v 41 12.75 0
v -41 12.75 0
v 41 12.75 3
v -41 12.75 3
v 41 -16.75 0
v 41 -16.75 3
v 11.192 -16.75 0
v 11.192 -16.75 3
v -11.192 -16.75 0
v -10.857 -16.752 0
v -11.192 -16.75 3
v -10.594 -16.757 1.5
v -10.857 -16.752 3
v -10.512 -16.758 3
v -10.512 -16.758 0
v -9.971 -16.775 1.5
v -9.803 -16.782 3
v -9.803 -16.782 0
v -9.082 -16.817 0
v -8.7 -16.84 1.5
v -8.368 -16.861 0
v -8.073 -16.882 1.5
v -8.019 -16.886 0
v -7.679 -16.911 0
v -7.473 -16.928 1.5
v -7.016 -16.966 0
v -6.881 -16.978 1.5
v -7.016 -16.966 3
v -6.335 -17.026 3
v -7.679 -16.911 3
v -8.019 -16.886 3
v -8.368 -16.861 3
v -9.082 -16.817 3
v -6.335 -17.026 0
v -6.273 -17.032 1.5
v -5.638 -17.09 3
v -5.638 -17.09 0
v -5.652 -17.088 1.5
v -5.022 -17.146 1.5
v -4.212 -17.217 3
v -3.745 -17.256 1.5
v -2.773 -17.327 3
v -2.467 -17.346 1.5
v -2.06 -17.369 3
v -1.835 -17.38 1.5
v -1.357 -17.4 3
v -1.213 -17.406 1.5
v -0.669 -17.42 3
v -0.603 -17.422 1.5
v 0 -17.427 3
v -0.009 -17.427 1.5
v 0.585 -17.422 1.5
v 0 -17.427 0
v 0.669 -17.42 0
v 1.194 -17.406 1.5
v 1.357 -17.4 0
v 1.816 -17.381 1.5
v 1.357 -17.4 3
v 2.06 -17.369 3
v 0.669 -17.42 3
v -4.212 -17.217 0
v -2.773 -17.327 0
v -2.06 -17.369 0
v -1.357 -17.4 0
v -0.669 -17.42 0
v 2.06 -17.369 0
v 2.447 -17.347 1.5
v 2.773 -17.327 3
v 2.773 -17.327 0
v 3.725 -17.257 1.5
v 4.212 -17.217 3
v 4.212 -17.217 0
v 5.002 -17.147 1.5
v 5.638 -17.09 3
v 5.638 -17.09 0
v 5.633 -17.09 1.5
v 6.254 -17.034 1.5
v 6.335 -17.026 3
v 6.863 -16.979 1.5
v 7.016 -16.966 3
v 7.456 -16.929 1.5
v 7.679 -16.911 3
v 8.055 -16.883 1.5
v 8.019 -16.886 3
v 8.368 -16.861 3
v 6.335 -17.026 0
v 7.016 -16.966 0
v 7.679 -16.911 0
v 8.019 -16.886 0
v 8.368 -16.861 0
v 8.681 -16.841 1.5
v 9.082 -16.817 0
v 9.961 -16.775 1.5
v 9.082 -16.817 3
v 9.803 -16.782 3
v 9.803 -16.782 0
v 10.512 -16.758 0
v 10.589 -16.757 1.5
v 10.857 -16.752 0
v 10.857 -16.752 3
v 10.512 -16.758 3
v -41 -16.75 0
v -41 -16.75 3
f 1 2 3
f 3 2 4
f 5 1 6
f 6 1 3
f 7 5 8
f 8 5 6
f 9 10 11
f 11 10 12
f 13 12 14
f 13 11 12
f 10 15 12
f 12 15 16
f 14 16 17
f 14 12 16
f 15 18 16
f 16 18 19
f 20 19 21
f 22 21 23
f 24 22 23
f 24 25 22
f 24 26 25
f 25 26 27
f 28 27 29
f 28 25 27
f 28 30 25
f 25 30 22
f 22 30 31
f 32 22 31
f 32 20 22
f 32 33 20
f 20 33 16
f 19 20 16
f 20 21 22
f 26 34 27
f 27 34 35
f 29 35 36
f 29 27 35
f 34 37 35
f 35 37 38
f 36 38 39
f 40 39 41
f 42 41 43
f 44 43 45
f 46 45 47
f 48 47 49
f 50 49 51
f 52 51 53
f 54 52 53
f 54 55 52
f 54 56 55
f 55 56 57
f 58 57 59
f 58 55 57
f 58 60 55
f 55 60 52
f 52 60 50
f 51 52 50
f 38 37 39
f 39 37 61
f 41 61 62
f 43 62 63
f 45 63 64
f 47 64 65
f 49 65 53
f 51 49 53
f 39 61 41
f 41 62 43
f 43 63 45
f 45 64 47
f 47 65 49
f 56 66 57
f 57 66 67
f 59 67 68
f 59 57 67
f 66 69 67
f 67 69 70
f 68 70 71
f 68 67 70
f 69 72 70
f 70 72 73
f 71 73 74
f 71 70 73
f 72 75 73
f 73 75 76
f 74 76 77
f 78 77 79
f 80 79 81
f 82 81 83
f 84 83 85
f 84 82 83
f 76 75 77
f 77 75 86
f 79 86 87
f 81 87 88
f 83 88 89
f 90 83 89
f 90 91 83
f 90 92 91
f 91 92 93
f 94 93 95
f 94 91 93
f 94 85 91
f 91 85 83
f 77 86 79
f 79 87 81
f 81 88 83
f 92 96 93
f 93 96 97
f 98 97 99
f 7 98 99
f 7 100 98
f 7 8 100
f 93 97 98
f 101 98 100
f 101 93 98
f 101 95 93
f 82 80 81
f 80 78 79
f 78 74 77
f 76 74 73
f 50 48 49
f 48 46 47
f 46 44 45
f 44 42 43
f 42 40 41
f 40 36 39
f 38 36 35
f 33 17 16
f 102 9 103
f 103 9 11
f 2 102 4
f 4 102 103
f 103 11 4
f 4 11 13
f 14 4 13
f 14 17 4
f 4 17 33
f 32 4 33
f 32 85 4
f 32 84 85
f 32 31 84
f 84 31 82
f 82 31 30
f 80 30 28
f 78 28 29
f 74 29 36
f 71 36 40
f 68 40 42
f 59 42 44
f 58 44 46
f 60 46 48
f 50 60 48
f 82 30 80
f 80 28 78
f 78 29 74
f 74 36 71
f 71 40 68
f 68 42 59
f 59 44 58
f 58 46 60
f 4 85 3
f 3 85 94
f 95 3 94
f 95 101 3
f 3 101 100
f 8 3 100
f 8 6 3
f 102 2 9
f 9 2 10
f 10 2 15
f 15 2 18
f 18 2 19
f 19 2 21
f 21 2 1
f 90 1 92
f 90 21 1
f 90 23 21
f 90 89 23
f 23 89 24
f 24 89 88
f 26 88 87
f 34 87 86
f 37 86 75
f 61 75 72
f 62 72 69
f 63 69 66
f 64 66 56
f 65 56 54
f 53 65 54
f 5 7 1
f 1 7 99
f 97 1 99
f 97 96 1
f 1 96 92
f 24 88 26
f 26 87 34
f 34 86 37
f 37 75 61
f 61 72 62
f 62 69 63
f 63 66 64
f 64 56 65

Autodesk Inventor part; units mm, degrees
ref_plane "YZ Plane" through (0, 0, 0) normal (1, 0, 0) x (0, 1, 0)
ref_plane "XZ Plane" through (0, 0, 0) normal (0, 1, 0) x (-1, 0, 0)
ref_plane "XY Plane" through (0, 0, 0) normal (0, 0, 1) x (1, 0, 0)
sketch "Sketch1" plane through (0, 0, 0) normal (0, 0, 1) x (1, 0, 0)
  line L0 (41, -16.75) -> (11.1915, -16.75) projected
  line L1 (41, -16.75) -> (41, -12.75) projected
  line L2 (-41, -12.75) -> (41, -12.75) projected
  line L3 (-41, -16.75) -> (-41, -12.75) projected
  line L4 (-11.1915, -16.75) -> (-41, -16.75) projected
  spline S0 degree 3 poles (-11.1915, -16.75) (-10.0304, -16.75) (-8.6395, -16.8333) (-6.313, -17.0219) (-5.0294, -17.1518) (-2.4598, -17.3597) (-1.173, -17.4271) (1.173, -17.4271) (2.4598, -17.3597) (5.0294, -17.1518) (6.313, -17.0219) (8.6395, -16.8333) (10.0304, -16.75) (11.1915, -16.75) knots 2.352794 2.352794 2.352794 2.352794 2.701135 2.701135 3.053026 3.053026 3.404917 3.404917 3.756807 3.756807 4.108698 4.108698 4.45704 4.45704 4.45704 4.45704 projected
  line L5 (-38, -6.75) -> (-38, 6.75) projected
  line L6 (-38, 6.75) -> (-36, 6.75) projected
  line L7 (-36, 6.75) -> (-36, 12.75) projected
  line L8 (-41, 12.75) -> (-36, 12.75) projected
  line L9 (-41, -12.75) -> (-41, 12.75) projected
  line L10 (-41, -12.75) -> (41, -12.75) projected
  line L11 (41, -12.75) -> (41, 12.75) projected
  line L12 (36, 12.75) -> (41, 12.75) projected
  line L13 (36, 6.75) -> (36, 12.75) projected
  line L14 (36, 6.75) -> (38, 6.75) projected
  line L15 (38, 6.75) -> (38, -6.75) projected
  line L16 (38, -6.75) -> (-38, -6.75) projected
  line L17 (36, 12.75) -> (-36, 12.75)
  point P0 (0, 0)
extrude "Extrusion1" add sketch "Sketch1" along normal blind 3
properties part number "Cup_Dispenser_Slider_Cover"
